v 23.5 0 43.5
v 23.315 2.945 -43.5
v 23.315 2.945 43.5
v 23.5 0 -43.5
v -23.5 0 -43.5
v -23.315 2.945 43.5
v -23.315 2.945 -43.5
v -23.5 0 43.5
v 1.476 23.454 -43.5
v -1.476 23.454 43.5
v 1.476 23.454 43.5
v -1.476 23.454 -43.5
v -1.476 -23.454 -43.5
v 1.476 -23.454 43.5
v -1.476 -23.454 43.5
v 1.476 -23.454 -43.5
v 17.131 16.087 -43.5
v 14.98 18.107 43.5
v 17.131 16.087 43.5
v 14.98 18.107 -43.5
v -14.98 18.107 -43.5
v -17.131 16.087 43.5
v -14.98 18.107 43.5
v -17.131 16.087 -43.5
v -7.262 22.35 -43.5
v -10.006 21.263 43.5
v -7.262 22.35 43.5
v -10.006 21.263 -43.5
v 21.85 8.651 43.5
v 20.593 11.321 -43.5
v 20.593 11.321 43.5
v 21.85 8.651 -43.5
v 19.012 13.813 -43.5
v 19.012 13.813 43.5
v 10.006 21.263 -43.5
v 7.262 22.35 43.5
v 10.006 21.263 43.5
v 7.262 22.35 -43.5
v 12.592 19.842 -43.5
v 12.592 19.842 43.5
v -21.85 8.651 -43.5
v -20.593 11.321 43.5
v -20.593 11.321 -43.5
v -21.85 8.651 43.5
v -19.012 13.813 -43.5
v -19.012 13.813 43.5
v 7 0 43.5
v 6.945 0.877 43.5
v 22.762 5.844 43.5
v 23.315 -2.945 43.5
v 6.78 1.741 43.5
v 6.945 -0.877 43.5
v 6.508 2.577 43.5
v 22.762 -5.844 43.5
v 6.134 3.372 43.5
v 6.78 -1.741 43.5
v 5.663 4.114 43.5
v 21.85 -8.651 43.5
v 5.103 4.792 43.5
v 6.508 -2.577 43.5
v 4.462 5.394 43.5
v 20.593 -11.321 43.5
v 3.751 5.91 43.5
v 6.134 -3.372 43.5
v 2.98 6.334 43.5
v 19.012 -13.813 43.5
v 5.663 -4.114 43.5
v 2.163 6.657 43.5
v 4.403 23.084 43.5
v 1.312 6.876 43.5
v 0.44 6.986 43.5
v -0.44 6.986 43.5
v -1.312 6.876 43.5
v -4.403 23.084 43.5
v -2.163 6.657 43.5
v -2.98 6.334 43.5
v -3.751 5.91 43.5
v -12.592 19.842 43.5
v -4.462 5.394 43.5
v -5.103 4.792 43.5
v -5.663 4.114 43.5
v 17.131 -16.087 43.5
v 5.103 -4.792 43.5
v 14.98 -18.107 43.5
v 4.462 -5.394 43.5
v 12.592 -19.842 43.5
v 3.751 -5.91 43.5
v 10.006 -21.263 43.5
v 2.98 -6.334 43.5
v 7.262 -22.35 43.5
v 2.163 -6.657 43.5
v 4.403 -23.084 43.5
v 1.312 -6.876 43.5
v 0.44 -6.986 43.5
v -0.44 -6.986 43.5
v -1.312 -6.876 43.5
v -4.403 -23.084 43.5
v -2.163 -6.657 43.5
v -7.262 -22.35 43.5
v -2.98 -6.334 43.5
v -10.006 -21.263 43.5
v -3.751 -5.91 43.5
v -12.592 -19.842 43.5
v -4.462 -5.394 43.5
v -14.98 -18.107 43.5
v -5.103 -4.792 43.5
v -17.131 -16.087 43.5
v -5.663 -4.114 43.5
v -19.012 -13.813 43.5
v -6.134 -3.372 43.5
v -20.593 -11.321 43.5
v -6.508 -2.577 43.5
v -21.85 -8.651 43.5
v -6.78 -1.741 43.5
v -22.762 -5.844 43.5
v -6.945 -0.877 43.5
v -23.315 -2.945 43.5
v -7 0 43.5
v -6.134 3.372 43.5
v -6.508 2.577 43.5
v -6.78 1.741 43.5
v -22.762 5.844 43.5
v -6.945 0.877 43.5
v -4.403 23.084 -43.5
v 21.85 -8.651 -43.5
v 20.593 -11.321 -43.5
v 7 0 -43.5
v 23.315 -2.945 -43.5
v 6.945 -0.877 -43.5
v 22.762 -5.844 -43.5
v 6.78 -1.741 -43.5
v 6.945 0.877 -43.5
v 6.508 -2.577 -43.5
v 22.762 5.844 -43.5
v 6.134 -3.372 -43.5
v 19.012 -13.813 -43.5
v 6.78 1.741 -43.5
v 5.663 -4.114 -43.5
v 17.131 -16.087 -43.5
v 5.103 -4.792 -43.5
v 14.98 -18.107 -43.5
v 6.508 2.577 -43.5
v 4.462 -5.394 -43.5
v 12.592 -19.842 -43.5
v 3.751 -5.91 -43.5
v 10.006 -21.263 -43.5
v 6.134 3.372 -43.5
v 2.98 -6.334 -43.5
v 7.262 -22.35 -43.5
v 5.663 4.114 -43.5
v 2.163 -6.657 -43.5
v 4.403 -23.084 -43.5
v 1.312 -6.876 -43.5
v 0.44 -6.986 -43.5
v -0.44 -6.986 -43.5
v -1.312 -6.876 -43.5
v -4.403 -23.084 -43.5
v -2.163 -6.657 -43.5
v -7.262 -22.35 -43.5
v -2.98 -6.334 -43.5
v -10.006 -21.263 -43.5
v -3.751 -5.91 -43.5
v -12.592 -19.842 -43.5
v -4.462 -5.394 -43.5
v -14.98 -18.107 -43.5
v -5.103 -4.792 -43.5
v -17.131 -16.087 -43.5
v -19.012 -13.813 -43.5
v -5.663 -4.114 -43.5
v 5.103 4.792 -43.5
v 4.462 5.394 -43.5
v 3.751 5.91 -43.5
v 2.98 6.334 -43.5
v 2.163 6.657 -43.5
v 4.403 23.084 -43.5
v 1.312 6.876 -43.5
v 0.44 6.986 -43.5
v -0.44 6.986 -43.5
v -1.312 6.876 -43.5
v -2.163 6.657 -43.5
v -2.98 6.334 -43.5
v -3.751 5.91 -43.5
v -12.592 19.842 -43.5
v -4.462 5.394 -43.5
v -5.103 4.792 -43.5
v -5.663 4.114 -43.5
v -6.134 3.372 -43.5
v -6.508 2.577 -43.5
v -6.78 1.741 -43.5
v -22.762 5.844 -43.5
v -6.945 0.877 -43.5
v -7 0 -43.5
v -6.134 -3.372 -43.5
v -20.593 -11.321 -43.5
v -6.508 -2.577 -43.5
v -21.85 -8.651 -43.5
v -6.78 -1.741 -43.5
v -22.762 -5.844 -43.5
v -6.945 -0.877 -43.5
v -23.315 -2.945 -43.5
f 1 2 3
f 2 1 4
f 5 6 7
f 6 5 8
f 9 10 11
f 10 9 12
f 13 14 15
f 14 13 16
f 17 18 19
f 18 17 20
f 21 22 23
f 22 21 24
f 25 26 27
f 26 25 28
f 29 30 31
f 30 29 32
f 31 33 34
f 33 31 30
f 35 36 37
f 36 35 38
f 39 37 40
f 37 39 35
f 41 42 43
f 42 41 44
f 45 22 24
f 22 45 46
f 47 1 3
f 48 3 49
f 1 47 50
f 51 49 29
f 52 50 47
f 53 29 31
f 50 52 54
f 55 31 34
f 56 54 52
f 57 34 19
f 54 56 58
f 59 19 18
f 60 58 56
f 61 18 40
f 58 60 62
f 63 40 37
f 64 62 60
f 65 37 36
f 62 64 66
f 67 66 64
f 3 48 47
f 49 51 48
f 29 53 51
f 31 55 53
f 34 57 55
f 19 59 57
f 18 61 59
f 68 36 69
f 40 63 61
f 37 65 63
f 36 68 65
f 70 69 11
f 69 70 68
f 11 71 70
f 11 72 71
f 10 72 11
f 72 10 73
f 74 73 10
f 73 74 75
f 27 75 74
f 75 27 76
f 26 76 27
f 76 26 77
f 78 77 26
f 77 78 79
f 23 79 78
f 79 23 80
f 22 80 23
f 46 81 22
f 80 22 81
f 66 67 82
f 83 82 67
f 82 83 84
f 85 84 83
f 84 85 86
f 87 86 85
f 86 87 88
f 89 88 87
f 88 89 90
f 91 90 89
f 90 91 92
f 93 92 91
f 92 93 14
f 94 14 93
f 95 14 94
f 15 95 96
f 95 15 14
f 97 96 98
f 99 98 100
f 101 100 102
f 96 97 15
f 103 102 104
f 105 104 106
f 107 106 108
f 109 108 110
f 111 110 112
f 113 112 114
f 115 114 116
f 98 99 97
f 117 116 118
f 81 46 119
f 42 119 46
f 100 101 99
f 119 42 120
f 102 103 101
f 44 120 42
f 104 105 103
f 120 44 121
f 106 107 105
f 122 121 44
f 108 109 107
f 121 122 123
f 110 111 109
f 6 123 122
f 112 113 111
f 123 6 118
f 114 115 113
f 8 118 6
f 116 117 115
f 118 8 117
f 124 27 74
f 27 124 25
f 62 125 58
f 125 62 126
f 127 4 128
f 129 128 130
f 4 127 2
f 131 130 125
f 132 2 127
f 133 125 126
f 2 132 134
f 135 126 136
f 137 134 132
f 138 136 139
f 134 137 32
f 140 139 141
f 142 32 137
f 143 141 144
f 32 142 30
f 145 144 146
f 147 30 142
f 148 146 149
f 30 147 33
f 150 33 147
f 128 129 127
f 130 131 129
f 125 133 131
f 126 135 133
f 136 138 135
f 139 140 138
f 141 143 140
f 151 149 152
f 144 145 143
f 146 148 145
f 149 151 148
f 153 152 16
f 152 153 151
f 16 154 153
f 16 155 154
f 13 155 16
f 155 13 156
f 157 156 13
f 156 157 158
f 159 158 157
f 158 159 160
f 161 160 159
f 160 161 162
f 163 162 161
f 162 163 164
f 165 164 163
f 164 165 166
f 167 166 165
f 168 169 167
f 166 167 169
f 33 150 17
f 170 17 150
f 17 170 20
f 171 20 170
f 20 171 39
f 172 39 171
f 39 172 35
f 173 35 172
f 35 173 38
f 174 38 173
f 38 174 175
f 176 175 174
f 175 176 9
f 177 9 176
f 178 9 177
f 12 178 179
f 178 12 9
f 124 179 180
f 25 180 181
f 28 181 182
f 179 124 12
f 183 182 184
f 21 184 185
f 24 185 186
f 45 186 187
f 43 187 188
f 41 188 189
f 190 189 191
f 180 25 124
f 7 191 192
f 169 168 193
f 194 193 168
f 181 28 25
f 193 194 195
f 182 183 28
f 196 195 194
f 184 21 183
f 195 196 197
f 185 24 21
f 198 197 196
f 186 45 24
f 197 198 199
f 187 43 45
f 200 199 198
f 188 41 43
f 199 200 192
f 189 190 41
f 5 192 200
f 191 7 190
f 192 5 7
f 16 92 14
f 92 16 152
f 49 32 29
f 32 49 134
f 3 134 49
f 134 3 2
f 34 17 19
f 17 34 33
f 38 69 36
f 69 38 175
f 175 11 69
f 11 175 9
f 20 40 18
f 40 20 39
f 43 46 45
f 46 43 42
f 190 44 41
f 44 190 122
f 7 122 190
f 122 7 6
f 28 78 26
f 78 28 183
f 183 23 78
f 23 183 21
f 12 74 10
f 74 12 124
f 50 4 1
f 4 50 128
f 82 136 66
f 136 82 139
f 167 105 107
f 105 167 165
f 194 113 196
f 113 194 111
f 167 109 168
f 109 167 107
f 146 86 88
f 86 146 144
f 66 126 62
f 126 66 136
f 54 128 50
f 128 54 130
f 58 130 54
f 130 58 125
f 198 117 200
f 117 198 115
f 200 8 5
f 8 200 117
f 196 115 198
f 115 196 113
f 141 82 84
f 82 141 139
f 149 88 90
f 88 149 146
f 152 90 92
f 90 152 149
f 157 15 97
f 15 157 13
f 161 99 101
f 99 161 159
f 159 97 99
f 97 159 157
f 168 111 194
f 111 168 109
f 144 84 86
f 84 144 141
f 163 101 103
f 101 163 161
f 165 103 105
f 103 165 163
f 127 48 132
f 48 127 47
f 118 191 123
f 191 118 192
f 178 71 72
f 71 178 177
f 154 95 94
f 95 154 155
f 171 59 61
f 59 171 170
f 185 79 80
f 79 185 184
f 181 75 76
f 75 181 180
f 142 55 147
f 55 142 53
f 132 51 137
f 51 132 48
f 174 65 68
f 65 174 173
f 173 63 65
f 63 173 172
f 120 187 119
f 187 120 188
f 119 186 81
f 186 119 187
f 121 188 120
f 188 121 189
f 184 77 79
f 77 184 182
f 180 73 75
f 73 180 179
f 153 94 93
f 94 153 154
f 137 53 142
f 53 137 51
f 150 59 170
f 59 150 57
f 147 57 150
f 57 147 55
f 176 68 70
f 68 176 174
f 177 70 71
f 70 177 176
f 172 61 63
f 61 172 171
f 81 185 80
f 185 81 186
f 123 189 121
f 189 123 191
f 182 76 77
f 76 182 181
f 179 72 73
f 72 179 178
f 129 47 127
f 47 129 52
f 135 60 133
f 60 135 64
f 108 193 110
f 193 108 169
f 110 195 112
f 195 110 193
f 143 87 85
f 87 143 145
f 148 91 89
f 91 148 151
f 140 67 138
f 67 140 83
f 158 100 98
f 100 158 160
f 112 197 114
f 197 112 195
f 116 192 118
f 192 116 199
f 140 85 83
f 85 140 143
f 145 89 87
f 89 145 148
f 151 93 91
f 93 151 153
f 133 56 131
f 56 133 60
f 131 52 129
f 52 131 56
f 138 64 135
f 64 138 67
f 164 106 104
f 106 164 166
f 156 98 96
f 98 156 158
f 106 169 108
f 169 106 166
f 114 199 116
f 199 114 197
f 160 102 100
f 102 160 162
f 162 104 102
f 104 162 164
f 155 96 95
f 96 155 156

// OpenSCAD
$fn = 50;


difference() {
	union() {
		translate(v = [0, 0, -43.5000000000]) {
			cylinder(h = 87, r = 23.5000000000);
		}
	}
	union() {
		translate(v = [0, 0, -100.0000000000]) {
			cylinder(h = 200, r = 7);
		}
	}
}
